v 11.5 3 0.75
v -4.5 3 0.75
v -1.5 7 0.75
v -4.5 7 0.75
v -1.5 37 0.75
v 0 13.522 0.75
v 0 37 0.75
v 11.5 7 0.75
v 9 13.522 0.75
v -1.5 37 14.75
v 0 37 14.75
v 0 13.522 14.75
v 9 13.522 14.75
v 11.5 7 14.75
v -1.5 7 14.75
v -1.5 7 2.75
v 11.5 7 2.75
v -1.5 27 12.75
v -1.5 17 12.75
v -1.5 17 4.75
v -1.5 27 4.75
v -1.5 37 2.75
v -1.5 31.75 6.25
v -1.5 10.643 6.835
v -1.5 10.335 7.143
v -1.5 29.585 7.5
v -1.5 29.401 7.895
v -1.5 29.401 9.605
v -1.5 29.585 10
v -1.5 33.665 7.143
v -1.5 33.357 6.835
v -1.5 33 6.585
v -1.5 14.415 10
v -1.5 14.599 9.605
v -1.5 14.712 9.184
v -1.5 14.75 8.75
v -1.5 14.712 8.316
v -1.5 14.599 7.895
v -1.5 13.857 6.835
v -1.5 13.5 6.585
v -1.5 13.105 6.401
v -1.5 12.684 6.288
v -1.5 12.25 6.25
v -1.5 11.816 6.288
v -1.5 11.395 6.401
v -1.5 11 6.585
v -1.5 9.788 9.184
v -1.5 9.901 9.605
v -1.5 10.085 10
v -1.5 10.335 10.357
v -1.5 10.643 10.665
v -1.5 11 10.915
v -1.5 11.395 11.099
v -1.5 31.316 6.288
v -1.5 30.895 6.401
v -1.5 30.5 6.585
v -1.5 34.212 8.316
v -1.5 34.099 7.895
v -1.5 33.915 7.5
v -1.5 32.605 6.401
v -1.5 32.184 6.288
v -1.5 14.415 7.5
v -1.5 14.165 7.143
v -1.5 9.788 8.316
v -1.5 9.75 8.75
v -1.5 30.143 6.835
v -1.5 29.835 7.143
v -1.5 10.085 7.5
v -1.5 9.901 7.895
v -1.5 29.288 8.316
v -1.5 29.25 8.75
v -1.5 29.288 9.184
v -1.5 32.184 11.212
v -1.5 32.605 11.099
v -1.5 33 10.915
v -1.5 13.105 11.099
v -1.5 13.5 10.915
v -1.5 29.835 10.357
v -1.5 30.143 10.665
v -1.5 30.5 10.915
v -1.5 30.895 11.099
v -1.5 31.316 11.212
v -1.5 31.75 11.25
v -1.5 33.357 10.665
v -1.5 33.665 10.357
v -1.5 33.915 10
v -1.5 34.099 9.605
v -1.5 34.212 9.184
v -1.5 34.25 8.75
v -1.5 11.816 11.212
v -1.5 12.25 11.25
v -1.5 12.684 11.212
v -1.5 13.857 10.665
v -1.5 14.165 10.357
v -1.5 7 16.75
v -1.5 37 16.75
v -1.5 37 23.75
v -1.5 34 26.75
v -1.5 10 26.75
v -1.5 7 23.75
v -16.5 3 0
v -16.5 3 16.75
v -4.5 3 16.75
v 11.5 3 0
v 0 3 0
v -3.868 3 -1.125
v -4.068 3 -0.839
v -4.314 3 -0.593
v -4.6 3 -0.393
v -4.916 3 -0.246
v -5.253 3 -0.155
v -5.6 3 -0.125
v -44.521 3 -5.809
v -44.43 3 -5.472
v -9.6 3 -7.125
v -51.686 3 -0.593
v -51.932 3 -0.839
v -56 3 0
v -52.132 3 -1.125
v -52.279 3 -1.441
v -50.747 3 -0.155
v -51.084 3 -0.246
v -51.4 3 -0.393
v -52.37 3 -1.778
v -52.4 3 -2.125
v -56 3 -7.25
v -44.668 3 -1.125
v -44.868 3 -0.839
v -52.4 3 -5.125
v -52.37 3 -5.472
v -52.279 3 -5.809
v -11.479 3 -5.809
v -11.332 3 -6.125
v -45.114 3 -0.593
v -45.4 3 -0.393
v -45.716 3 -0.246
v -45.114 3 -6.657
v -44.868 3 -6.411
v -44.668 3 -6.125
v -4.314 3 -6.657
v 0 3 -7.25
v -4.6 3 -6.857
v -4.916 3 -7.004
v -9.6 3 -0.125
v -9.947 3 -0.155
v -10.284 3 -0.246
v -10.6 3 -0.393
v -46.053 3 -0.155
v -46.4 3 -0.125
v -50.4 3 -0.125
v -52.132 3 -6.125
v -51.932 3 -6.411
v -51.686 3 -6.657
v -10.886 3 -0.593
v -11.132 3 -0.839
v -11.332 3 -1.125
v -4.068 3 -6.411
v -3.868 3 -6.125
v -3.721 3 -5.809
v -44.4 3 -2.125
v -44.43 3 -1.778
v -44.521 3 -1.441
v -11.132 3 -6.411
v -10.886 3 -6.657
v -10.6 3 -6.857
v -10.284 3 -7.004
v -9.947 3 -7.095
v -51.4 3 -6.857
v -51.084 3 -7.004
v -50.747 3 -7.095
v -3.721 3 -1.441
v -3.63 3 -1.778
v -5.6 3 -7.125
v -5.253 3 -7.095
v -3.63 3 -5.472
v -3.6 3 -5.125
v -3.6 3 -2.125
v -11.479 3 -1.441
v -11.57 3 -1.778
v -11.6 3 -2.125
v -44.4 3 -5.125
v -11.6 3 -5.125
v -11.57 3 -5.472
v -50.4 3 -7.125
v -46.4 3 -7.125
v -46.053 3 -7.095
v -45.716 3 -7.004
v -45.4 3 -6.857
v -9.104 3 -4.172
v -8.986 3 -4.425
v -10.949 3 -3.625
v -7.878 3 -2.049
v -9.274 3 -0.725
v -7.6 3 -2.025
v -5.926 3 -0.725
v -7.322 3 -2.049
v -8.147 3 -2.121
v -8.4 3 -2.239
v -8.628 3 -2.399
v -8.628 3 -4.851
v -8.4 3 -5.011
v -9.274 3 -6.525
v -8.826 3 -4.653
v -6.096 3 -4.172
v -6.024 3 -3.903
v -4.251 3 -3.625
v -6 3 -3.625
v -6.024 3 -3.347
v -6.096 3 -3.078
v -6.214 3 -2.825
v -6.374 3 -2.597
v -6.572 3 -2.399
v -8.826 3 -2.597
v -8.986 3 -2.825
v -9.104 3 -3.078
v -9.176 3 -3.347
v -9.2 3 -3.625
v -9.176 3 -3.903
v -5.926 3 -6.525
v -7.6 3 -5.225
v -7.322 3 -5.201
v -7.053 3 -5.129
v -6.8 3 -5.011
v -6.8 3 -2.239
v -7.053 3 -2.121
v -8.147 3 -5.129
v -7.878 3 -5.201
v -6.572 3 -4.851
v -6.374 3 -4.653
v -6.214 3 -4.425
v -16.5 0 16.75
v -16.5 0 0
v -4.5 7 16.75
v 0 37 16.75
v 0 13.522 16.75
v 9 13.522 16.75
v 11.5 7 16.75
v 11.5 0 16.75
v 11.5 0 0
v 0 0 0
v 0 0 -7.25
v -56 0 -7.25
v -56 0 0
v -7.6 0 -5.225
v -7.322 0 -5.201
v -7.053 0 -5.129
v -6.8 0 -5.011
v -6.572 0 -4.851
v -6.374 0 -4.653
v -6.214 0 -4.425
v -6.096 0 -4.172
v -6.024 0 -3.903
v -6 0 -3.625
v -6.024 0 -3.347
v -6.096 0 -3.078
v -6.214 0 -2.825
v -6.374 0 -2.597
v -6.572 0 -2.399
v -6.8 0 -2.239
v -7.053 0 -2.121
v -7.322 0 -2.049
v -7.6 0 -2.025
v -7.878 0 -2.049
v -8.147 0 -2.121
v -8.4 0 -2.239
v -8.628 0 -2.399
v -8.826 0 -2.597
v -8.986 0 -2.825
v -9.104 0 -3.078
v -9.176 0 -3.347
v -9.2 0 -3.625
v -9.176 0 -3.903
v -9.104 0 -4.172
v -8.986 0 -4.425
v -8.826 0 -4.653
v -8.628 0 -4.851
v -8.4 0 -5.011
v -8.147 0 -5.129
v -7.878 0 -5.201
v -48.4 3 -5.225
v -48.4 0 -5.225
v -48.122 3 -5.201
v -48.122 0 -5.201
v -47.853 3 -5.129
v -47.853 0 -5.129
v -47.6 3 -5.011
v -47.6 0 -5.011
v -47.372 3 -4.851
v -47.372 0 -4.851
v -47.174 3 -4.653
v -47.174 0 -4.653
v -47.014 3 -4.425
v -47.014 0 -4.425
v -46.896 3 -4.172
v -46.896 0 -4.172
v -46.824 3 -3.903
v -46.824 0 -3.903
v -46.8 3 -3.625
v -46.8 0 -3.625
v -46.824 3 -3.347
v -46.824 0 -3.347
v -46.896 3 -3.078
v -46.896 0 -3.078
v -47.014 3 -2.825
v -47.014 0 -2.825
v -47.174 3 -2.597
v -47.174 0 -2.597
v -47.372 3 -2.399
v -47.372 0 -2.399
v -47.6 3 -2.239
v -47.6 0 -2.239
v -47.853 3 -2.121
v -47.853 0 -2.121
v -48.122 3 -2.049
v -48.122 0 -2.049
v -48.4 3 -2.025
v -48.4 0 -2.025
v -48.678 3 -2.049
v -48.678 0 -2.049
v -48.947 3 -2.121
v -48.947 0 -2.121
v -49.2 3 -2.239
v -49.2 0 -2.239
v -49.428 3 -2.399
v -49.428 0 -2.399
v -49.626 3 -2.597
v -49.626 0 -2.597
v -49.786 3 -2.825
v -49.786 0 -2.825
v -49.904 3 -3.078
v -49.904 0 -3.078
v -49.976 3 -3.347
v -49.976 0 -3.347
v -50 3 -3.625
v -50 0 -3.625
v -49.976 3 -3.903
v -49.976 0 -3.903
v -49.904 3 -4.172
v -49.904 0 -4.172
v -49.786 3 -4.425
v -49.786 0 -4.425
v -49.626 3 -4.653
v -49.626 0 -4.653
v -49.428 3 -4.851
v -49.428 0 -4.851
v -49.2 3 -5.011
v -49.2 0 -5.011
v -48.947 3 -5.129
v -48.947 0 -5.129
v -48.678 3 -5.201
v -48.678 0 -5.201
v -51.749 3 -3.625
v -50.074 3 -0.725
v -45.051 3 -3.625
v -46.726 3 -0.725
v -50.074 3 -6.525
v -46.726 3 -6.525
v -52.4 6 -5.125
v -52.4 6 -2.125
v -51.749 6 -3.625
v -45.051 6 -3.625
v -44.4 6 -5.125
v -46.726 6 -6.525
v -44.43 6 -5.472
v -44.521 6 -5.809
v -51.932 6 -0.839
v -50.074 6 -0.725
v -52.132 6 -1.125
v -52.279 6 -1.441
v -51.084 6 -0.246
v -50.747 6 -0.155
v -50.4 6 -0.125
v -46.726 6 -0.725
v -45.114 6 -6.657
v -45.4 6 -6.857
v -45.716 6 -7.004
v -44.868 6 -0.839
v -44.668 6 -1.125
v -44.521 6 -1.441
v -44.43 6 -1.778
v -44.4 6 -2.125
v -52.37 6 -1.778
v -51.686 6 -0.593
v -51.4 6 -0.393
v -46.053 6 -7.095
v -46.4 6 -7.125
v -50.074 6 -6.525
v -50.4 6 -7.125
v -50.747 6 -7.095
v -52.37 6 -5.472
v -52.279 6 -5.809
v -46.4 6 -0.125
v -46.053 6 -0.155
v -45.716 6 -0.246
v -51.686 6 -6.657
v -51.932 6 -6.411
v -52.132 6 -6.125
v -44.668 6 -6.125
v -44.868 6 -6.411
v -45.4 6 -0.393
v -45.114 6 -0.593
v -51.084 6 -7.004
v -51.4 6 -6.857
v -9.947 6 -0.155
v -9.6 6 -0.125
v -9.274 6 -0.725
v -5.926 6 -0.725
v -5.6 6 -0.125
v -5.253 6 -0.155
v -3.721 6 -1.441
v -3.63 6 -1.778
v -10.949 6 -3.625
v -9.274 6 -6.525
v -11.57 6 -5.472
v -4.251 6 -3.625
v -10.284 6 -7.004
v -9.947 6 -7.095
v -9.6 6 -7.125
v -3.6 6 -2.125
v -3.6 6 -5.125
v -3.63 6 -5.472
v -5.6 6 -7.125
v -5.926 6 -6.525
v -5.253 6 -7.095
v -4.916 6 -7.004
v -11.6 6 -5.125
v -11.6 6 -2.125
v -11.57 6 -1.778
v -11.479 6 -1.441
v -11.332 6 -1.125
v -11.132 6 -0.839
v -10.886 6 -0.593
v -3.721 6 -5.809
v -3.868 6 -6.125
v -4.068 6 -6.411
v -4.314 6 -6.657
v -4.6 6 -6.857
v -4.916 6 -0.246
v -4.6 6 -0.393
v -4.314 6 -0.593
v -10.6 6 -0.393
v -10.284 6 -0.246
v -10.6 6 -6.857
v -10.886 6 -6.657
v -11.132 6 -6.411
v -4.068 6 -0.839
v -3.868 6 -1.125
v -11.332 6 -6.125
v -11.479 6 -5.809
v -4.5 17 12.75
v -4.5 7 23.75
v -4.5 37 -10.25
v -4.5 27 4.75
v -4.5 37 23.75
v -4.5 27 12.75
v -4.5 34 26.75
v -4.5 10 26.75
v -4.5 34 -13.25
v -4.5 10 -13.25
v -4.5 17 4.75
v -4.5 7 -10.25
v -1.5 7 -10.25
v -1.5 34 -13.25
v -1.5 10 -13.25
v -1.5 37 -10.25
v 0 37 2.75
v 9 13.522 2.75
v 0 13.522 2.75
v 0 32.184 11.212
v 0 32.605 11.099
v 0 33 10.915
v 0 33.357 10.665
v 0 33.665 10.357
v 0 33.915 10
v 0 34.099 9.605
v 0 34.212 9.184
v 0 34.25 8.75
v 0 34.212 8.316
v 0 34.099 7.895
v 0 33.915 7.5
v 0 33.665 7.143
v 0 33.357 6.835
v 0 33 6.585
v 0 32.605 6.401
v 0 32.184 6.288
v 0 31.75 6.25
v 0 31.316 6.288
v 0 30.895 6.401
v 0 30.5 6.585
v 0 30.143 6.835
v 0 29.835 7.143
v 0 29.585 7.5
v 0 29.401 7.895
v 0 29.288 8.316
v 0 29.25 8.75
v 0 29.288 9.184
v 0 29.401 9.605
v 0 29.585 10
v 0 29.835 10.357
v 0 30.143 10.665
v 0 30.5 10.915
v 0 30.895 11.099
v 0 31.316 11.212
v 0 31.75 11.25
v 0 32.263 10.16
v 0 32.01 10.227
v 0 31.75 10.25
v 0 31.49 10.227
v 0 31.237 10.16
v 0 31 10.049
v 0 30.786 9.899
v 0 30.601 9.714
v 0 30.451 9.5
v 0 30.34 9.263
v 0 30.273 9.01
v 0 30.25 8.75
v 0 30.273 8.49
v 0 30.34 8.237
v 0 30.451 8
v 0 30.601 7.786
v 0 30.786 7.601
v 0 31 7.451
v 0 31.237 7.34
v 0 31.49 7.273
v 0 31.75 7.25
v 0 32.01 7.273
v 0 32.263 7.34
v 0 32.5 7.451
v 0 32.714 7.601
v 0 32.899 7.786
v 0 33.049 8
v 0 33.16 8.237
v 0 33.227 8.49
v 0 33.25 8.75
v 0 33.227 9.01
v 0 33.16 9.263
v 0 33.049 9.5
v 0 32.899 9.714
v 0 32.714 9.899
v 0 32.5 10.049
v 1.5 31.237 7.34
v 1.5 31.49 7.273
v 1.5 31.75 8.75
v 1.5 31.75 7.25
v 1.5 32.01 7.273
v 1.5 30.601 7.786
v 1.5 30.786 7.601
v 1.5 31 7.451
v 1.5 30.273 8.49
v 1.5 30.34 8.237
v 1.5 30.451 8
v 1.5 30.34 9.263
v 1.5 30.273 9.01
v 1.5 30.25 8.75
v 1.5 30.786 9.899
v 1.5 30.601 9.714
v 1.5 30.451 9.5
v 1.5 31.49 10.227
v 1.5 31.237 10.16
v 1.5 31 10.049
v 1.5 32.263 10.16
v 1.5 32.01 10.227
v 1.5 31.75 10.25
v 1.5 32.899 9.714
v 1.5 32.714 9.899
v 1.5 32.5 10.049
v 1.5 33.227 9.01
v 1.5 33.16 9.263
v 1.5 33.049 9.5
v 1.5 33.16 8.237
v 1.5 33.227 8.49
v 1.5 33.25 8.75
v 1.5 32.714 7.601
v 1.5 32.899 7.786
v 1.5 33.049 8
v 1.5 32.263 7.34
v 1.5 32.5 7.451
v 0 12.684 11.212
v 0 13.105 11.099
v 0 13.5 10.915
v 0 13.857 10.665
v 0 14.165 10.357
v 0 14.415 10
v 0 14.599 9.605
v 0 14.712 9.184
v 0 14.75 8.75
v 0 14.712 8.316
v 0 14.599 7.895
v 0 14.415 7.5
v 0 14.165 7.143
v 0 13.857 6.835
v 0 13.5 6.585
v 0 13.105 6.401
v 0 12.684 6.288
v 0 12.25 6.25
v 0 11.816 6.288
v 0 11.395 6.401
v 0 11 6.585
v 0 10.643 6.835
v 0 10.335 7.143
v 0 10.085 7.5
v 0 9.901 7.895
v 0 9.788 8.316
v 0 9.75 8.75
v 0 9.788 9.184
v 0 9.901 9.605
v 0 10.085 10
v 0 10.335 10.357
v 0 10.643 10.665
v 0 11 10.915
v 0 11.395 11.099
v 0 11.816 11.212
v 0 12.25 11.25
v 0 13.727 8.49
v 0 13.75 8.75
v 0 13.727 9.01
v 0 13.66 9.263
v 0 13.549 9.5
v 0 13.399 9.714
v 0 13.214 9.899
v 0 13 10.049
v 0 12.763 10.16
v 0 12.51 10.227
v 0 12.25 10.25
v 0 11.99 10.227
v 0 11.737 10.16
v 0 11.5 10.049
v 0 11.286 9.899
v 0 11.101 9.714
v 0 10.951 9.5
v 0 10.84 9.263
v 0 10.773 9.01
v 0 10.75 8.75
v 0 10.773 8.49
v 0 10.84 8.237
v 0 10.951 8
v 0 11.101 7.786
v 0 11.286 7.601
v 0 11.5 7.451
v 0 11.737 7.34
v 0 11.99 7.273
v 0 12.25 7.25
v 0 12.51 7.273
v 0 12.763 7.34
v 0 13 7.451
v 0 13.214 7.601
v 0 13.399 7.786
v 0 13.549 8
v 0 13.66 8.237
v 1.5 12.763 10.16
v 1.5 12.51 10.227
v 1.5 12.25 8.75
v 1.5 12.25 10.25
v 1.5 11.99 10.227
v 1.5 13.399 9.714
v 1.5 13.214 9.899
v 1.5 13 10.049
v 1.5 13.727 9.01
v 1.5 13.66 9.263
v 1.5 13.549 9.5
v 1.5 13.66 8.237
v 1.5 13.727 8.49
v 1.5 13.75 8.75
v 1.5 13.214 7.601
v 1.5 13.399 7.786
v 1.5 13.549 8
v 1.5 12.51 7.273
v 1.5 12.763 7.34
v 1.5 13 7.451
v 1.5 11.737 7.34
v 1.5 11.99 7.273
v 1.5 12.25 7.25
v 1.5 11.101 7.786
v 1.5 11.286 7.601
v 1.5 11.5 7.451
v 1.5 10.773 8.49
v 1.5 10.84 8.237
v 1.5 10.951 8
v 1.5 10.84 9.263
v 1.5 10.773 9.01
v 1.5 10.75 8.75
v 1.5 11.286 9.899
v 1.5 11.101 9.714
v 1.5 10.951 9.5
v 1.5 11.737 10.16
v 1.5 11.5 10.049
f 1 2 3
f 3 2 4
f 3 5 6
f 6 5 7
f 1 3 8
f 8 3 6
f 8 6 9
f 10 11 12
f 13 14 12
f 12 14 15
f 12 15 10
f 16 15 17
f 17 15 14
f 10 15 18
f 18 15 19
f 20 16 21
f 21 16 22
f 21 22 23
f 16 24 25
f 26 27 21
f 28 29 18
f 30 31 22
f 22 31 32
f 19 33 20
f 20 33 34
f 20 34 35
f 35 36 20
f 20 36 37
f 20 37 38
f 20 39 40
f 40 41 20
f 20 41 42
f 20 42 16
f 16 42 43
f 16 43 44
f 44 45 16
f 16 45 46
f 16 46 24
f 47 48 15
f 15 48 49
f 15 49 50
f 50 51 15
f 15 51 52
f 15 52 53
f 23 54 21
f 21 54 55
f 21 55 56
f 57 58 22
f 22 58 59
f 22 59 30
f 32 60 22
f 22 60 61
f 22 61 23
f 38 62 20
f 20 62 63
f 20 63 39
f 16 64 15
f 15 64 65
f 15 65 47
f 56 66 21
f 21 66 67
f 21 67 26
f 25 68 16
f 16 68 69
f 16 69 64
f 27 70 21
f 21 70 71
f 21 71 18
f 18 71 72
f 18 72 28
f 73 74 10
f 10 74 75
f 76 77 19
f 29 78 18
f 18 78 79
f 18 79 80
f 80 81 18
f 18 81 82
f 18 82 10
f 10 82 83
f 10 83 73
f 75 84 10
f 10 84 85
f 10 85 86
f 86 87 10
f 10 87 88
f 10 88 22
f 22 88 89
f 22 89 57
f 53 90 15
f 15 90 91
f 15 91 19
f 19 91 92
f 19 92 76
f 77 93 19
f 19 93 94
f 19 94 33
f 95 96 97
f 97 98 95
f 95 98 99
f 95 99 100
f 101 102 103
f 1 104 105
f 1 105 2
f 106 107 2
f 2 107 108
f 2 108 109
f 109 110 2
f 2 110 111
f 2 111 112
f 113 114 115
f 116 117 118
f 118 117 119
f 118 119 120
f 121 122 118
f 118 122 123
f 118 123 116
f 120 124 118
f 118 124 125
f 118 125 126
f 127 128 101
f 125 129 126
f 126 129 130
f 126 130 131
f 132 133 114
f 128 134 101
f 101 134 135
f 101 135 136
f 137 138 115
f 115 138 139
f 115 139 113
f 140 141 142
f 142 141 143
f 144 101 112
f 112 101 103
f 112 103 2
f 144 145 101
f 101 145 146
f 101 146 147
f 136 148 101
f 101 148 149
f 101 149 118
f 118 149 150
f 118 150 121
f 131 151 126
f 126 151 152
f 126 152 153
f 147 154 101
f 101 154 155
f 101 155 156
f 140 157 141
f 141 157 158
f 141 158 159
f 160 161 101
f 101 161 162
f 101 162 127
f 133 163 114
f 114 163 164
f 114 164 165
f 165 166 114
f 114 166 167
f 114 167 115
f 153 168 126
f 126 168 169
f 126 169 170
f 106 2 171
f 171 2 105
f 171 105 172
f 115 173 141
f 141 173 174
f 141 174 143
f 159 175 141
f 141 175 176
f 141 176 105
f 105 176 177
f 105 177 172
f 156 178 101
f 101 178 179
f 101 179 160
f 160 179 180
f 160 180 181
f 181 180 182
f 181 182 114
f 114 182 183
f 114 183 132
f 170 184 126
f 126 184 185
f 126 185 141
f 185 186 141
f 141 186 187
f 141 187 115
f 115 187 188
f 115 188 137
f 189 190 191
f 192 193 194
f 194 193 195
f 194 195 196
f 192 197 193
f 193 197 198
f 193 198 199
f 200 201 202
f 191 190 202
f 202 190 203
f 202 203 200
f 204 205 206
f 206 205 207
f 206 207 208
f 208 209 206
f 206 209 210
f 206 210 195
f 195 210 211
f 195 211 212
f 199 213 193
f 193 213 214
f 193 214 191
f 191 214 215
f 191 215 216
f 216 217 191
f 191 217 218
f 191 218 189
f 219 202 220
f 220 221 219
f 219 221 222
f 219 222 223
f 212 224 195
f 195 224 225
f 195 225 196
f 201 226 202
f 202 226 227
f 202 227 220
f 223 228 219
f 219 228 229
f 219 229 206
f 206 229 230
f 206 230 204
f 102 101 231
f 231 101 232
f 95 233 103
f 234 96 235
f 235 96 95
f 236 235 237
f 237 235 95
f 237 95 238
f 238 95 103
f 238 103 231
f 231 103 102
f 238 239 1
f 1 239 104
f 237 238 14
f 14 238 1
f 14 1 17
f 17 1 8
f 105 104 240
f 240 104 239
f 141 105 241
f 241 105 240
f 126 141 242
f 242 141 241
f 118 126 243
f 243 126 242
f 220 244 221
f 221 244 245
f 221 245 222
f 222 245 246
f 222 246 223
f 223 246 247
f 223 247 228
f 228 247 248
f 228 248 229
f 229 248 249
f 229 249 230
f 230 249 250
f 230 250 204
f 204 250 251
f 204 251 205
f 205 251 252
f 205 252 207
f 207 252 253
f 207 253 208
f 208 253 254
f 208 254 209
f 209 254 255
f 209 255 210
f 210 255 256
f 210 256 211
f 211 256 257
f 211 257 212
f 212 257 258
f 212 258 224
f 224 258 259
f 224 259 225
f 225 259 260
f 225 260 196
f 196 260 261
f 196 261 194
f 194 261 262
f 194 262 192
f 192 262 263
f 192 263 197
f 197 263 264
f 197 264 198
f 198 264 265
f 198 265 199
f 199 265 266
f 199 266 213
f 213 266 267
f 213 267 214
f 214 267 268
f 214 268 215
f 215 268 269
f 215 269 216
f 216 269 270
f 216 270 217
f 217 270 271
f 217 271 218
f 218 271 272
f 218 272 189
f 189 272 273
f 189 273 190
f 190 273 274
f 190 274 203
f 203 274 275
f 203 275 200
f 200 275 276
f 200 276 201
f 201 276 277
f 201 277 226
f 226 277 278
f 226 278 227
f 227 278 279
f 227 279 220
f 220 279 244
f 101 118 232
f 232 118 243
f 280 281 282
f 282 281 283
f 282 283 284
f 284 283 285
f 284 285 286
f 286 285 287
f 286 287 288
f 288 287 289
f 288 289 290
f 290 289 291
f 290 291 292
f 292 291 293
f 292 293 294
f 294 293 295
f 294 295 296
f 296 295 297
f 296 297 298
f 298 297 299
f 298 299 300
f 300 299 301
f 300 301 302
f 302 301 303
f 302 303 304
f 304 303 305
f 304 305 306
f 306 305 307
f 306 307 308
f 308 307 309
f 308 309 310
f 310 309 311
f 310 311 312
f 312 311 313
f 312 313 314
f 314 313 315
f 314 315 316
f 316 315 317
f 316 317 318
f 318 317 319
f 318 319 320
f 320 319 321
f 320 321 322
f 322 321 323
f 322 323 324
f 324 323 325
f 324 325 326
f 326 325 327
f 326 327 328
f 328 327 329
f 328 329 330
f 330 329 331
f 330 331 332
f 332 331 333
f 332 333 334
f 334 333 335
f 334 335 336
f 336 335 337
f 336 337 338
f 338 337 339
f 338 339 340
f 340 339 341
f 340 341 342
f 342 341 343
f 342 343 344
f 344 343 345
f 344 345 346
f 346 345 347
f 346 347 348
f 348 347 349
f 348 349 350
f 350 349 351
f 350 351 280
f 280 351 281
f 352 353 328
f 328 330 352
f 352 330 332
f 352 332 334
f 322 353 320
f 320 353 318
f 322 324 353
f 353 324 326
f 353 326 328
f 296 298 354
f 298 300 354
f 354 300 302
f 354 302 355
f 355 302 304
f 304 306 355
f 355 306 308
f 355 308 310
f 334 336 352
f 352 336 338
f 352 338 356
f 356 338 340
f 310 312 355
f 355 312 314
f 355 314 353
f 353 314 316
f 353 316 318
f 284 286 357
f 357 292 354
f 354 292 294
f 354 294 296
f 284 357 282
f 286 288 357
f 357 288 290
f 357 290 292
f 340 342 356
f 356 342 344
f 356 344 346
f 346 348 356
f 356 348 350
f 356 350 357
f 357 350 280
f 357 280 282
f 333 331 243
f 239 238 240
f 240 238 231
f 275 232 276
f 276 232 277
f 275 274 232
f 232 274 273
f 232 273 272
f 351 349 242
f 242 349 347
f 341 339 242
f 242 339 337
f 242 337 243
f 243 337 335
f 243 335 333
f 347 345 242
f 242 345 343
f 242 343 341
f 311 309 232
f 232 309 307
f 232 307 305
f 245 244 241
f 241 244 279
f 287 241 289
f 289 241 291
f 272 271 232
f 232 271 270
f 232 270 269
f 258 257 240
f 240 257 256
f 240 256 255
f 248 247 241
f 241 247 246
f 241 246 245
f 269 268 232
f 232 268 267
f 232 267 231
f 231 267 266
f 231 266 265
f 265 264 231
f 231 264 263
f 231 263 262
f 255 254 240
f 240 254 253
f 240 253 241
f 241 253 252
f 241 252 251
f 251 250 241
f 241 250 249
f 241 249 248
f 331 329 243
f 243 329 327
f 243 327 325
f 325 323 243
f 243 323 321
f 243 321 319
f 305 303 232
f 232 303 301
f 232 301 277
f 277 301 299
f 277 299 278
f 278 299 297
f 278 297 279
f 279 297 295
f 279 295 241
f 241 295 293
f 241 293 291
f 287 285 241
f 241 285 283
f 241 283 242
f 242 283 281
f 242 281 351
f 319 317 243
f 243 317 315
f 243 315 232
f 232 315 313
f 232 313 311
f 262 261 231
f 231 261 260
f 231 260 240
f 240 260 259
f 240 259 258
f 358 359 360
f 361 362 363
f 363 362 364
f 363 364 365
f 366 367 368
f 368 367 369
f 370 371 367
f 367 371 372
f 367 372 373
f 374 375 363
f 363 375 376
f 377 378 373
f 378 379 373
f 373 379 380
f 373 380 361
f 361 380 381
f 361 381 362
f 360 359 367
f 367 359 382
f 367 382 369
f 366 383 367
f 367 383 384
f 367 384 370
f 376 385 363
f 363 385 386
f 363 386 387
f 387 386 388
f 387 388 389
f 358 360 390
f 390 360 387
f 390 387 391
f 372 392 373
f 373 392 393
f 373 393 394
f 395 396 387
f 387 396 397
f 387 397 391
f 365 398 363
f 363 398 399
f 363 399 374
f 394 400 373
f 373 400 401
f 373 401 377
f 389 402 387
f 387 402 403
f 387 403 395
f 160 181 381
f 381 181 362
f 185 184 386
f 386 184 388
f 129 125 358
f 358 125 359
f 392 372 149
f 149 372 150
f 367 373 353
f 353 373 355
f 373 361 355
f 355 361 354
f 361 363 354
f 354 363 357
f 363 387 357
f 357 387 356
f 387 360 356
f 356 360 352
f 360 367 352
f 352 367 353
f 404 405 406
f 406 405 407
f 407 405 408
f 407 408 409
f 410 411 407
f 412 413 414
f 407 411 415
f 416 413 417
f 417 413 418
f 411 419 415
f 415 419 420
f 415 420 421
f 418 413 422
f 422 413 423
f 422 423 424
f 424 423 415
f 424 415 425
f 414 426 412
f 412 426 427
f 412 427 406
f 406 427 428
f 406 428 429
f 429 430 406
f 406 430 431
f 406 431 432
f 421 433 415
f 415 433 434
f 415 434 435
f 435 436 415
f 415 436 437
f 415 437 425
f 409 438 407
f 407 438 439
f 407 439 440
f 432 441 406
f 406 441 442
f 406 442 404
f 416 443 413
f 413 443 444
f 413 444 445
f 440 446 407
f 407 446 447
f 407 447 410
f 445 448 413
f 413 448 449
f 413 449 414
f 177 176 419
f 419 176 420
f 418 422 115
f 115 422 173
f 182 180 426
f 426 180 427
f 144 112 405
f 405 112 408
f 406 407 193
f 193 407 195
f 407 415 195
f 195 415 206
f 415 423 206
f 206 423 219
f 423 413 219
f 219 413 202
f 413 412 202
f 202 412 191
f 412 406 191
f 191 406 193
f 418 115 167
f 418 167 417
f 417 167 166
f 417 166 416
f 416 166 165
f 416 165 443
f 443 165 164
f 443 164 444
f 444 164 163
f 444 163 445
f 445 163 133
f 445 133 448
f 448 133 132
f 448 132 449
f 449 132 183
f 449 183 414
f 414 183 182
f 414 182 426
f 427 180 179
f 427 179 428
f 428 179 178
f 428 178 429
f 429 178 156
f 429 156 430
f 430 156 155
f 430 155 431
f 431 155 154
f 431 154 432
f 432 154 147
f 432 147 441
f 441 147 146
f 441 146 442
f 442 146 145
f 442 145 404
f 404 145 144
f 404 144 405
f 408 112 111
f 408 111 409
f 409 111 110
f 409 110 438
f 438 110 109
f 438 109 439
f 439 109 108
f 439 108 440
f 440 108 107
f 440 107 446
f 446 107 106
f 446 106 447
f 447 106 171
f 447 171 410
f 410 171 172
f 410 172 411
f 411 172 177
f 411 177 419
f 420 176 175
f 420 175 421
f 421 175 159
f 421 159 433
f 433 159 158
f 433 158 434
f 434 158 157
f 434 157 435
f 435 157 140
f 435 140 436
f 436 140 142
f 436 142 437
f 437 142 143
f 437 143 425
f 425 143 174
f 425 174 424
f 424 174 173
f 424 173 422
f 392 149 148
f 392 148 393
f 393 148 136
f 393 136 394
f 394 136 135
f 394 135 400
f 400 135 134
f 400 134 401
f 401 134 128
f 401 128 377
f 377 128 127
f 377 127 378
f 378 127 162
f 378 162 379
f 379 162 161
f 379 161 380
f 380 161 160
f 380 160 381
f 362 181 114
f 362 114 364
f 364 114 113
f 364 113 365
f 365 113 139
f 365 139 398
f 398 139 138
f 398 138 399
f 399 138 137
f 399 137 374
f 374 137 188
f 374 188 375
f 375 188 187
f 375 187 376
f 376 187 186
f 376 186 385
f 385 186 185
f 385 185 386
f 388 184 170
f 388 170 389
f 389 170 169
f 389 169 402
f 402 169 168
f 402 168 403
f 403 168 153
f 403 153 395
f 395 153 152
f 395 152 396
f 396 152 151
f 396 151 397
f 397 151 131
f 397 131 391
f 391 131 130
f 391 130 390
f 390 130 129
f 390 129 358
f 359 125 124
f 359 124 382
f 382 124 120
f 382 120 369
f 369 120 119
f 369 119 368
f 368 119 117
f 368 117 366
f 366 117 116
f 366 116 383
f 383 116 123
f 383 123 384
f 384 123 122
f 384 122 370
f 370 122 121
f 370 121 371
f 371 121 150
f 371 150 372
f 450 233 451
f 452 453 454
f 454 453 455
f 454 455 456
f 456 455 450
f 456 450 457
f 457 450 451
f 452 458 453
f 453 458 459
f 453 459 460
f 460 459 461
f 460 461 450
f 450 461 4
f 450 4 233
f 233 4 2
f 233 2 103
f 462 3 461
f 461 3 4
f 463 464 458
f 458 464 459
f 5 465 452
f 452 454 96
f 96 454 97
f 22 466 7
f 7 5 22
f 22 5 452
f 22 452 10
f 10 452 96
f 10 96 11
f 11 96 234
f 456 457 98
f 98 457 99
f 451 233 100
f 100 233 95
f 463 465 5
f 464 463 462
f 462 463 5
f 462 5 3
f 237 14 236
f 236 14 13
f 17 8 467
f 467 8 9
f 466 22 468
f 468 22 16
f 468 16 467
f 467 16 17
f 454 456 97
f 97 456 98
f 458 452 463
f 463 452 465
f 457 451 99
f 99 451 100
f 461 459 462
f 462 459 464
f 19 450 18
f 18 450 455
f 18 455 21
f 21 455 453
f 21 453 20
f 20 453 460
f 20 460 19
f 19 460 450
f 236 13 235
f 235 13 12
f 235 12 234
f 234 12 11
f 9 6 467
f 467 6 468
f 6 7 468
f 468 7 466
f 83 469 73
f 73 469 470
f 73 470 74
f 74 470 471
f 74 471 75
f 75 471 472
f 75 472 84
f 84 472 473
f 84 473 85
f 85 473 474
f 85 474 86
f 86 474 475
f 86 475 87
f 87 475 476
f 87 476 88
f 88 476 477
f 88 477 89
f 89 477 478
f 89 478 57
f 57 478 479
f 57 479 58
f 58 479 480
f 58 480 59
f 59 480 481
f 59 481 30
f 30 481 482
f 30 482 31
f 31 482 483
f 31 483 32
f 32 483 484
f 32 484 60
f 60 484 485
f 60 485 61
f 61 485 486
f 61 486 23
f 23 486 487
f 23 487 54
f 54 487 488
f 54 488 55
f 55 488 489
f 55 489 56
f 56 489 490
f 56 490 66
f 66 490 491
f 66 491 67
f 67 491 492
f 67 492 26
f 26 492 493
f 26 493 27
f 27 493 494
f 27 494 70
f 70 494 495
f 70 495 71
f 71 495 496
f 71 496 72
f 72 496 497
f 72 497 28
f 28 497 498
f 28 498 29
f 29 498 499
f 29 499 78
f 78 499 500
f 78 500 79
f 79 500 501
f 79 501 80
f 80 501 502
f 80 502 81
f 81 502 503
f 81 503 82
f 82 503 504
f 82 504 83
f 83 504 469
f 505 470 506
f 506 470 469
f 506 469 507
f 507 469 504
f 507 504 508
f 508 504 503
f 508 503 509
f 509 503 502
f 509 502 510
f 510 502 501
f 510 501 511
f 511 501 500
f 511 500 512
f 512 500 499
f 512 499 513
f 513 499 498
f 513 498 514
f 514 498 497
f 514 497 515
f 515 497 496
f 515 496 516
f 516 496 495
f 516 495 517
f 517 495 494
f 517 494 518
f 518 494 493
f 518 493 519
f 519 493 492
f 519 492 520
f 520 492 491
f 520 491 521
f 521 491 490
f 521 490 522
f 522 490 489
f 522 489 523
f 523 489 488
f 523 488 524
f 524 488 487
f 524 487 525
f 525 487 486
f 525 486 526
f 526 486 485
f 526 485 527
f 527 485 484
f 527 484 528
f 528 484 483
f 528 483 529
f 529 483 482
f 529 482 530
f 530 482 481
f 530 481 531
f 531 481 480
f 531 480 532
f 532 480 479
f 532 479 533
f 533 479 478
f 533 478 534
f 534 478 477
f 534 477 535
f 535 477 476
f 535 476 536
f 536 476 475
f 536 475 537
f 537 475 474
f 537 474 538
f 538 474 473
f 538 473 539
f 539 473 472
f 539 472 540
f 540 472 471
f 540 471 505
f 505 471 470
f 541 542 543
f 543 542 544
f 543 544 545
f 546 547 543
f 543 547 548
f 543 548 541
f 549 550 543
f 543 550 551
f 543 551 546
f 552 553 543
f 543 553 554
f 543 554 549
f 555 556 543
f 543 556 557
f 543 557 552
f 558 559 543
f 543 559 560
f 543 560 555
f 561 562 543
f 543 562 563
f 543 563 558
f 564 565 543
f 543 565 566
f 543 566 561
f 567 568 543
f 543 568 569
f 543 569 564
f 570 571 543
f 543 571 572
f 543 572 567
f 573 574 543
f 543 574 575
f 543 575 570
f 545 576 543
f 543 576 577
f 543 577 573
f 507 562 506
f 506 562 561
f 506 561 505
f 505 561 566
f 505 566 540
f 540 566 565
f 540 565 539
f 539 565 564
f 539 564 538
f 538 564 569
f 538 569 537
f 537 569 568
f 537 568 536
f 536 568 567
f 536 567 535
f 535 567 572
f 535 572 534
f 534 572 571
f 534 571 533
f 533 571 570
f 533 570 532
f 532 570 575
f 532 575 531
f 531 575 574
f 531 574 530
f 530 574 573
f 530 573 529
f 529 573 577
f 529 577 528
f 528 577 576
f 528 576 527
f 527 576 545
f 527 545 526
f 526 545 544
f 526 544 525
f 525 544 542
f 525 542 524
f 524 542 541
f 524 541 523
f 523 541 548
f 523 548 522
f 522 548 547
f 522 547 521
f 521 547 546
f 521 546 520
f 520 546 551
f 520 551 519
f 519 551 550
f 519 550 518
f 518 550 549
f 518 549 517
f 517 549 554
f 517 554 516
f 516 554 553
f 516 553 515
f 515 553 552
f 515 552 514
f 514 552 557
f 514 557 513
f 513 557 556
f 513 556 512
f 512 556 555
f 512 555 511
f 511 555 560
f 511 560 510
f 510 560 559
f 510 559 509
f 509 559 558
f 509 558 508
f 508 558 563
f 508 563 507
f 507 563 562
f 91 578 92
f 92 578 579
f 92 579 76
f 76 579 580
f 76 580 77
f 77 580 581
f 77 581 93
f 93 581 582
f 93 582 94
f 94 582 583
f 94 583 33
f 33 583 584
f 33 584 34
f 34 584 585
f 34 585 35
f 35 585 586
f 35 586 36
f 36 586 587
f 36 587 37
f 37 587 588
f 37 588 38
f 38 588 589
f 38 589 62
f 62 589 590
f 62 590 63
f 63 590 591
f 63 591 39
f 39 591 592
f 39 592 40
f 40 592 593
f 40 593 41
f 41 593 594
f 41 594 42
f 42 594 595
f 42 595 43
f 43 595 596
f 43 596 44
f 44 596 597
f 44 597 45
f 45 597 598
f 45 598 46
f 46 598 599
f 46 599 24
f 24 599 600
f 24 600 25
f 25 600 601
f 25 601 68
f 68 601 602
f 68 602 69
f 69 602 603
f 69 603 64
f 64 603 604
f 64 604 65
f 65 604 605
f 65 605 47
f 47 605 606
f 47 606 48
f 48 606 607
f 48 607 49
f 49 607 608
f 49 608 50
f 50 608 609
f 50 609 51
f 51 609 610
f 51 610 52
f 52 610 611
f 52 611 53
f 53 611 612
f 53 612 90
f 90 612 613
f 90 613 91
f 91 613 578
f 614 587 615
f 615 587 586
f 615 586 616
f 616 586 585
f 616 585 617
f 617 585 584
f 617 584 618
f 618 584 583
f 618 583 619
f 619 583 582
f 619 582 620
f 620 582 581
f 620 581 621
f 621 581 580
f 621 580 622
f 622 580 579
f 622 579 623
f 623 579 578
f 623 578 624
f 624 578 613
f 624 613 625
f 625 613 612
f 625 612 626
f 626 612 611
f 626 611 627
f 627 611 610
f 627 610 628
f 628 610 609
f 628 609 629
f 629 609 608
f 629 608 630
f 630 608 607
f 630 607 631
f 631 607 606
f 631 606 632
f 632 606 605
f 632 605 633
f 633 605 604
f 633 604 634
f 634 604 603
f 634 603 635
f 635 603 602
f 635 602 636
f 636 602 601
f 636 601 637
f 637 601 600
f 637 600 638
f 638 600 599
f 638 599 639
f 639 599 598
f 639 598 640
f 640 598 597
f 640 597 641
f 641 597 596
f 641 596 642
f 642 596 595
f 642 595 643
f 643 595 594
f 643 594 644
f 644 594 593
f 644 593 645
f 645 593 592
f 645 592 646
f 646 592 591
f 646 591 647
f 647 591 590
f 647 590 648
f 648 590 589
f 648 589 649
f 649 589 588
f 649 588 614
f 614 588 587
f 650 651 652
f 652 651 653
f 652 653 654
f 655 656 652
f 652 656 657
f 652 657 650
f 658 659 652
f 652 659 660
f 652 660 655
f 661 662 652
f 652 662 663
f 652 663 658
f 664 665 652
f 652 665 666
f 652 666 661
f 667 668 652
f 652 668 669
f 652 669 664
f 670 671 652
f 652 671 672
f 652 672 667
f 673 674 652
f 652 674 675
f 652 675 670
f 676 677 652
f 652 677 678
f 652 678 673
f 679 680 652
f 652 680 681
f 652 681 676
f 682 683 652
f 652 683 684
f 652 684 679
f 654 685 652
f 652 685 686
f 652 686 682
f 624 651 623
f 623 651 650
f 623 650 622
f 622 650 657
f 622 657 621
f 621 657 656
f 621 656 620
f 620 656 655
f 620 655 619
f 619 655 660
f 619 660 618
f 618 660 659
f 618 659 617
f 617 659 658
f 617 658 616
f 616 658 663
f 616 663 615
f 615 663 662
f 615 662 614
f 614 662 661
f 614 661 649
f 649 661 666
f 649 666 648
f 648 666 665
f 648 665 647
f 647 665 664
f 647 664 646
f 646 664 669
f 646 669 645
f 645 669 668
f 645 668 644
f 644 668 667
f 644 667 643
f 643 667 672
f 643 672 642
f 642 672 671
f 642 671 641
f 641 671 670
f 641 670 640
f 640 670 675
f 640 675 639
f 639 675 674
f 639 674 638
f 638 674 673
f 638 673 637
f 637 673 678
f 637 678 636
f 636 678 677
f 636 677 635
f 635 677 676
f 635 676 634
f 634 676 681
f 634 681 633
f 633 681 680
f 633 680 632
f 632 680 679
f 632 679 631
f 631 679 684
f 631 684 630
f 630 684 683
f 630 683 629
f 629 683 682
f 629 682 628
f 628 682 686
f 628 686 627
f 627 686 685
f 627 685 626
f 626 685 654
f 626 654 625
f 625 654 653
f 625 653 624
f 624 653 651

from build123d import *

# Parameters (mm, degrees)
SKETCH1_W               = 56
SKETCH1_H               = 7.25
SKETCH1_R               = 1.6
SKETCH1_W_2             = 5
SKETCH1_H_2             = 16.75
SKETCH1_W_3             = 11.5
BOSS_EXTRUDE1_DEPTH     = 3
SKETCH2_W               = 8
SKETCH2_H               = 7
BOSS_EXTRUDE2_DEPTH     = 3
FILLET1_R               = 2
SKETCH3_W               = 16
SKETCH3_H               = 16
BOSS_EXTRUDE3_DEPTH     = 4
BOSS_EXTRUDE4_DEPTH     = 3
BOSS_EXTRUDE5_DEPTH     = 2
BOSS_EXTRUDE6_DEPTH     = 2
CHAMFER1_SIZE           = 3
SKETCH8_W               = 8
SKETCH8_H               = 10
CUT_EXTRUDE1_DEPTH      = 10
CUT_EXTRUDE2_DEPTH      = 74.518705103
CUT_EXTRUDE2_DEPTH_BACK = 2
CUT_EXTRUDE3_DEPTH      = 72.281133549
CUT_EXTRUDE3_DEPTH_BACK = 2
SKETCH11_R              = 1.5
BOSS_EXTRUDE7_DEPTH     = 3
SKETCH13_R              = 2.5
BOSS_EXTRUDE8_DEPTH     = 1.5


with BuildPart() as part:
    # Sketch1 → Boss-Extrude1 (new body)
    # profile 1 of 4: a face of its own
    with BuildSketch(Plane(origin=(0, 0, 0), x_dir=(1, 0, 0), z_dir=(0, 1, 0))):
        with Locations((-28, 3.625)):
            Rectangle(SKETCH1_W, SKETCH1_H)
        with Locations(Location((-7.6, 3.625, 0), (0, 0, 270))):
            Circle(SKETCH1_R, mode=Mode.SUBTRACT)
        with Locations(Location((-48.4, 3.625, 0), (0, 0, 270))):
            Circle(SKETCH1_R, mode=Mode.SUBTRACT)
    # profile 2 of 4: a face of its own
    with BuildSketch(Plane(origin=(0, 0, 0), x_dir=(1, 0, 0), z_dir=(0, 1, 0))):
        with Locations((-2.5, -8.375)):
            Rectangle(SKETCH1_W_2, SKETCH1_H_2)
    # profile 3 of 4: a face of its own
    with BuildSketch(Plane(origin=(0, 0, 0), x_dir=(1, 0, 0), z_dir=(0, 1, 0))):
        with Locations((5.75, -8.375)):
            Rectangle(SKETCH1_W_3, SKETCH1_H_2)
    # profile 4 of 4: a face of its own
    with BuildSketch(Plane(origin=(0, 0, 0), x_dir=(1, 0, 0), z_dir=(0, 1, 0))):
        with Locations((-10.75, -8.375)):
            Rectangle(SKETCH1_W_3, SKETCH1_H_2)
    extrude(amount=BOSS_EXTRUDE1_DEPTH)

    # Sketch2 → Boss-Extrude2 (add)
    # profile 1 of 2: a face of its own
    with BuildSketch(Plane(origin=(0, 3, 0), x_dir=(1, 0, 0), z_dir=(0, 1, 0))):
        with Locations((-48.4, 3.625)):
            Rectangle(SKETCH2_W, SKETCH2_H)
        Polygon((-46.725684219, 0.725), (-45.051368439, 3.625), (-46.725684219, 6.525), (-50.074315781, 6.525), (-51.748631561, 3.625), (-50.074315781, 0.725), align=None, mode=Mode.SUBTRACT)
    # profile 2 of 2: a face of its own
    with BuildSketch(Plane(origin=(0, 3, 0), x_dir=(1, 0, 0), z_dir=(0, 1, 0))):
        with Locations((-7.6, 3.625)):
            Rectangle(SKETCH2_W, SKETCH2_H)
        Polygon((-5.925684219, 0.725), (-4.251368439, 3.625), (-5.925684219, 6.525), (-9.274315781, 6.525), (-10.948631561, 3.625), (-9.274315781, 0.725), align=None, mode=Mode.SUBTRACT)
    extrude(amount=BOSS_EXTRUDE2_DEPTH)

    # Fillet1
    fillet1_edges = [part.edges().sort_by_distance(p)[0] for p in [
        (-44.4, 4.5, -0.125),
        (-44.4, 4.5, -7.125),
        (-52.4, 4.5, -7.125),
        (-52.4, 4.5, -0.125),
        (-3.6, 4.5, -0.125),
        (-3.6, 4.5, -7.125),
        (-11.6, 4.5, -7.125),
        (-11.6, 4.5, -0.125),
    ]]
    fillet(fillet1_edges, radius=FILLET1_R)

    # Sketch3 → Boss-Extrude3 (add)
    with BuildSketch(Plane(origin=(0, 3, 0), x_dir=(1, 0, 0), z_dir=(0, 1, 0))):
        with Locations((3.5, -8.75)):
            Rectangle(SKETCH3_W, SKETCH3_H)
    extrude(amount=BOSS_EXTRUDE3_DEPTH)

    # Sketch5 → Boss-Extrude4 (add)
    with BuildSketch(Plane.ZY.offset(4.5)):
        Polygon((-13.25, 7), (0.75, 7), (16.75, 7), (26.75, 7), (26.75, 37), (-13.25, 37), align=None)
    extrude(amount=-BOSS_EXTRUDE4_DEPTH)

    # Sketch6 → Boss-Extrude5 (add)
    with BuildSketch(Plane.XY.offset(16.75)):
        Polygon((-1.5, 37), (0, 37), (11.5, 7), (-1.5, 7), align=None)
    extrude(amount=-BOSS_EXTRUDE5_DEPTH)

    # Sketch7 → Boss-Extrude6 (add)
    with BuildSketch(Plane(origin=(0, 0, 0.75), x_dir=(-1, 0, 0), z_dir=(0, 0, -1))):
        Polygon((1.5, 37), (0, 37), (-11.5, 7), (1.5, 7), align=None)
    extrude(amount=-BOSS_EXTRUDE6_DEPTH)

    # Chamfer1
    chamfer1_edges = [part.edges().sort_by_distance(p)[0] for p in [
        (-3, 7, -13.25),
        (-3, 37, -13.25),
        (-3, 37, 26.75),
        (-3, 7, 26.75),
    ]]
    chamfer(chamfer1_edges, length=CHAMFER1_SIZE)

    # Sketch8 → Cut-Extrude1 (cut)
    with BuildSketch(Plane(origin=(-1.5, 0, 0), x_dir=(0, 0, -1), z_dir=(1, 0, 0))):
        with Locations((-8.75, 22)):
            Rectangle(SKETCH8_W, SKETCH8_H)
    extrude(amount=-CUT_EXTRUDE1_DEPTH, mode=Mode.SUBTRACT)

    # Sketch9 → Cut-Extrude2 (cut, two sides: drawn at the far end of the back side and taken through both)
    with BuildSketch(Plane.XY.offset(16.75).offset(-CUT_EXTRUDE2_DEPTH_BACK)):
        Polygon((0, 185.220530074), (0, 37), (0, 13.52173913), (9, 13.52173913), (157.220530074, 13.52173913), (375.851096448, 213.716588185), (218.630566375, 385.415379128), align=None)
    extrude(amount=CUT_EXTRUDE2_DEPTH + CUT_EXTRUDE2_DEPTH_BACK, mode=Mode.SUBTRACT)

    # Sketch10 → Cut-Extrude3 (cut, two sides: drawn at the far end of the back side and taken through both)
    with BuildSketch(Plane.XY.offset(2.75).offset(-CUT_EXTRUDE3_DEPTH_BACK)):
        Polygon((0, 185.220530074), (0, 37), (0, 13.52173913), (9, 13.52173913), (157.220530074, 13.52173913), (375.851096448, 213.716588185), (218.630566375, 385.415379128), align=None)
    extrude(amount=CUT_EXTRUDE3_DEPTH + CUT_EXTRUDE3_DEPTH_BACK, mode=Mode.SUBTRACT)

    # Sketch11 → Boss-Extrude7 (add)
    with BuildSketch(Plane(origin=(-1.5, 0, 0), x_dir=(0, 0, -1), z_dir=(1, 0, 0))):
        with Locations(Location((-8.75, 31.75, 0), (0, 0, 180))):
            Circle(SKETCH11_R)
        with Locations(Location((-8.75, 12.25, 0), (0, 0, 180))):
            Circle(SKETCH11_R)
    extrude(amount=BOSS_EXTRUDE7_DEPTH)

    # Sketch13 → Boss-Extrude8 (add)
    with BuildSketch(Plane(origin=(-1.5, 0, 0), x_dir=(0, 0, -1), z_dir=(1, 0, 0))):
        with Locations(Location((-8.75, 31.75, 0), (0, 0, 180))):
            Circle(SKETCH13_R)
        with Locations(Location((-8.75, 12.25, 0), (0, 0, 180))):
            Circle(SKETCH13_R)
    extrude(amount=BOSS_EXTRUDE8_DEPTH)


solid = part.part
